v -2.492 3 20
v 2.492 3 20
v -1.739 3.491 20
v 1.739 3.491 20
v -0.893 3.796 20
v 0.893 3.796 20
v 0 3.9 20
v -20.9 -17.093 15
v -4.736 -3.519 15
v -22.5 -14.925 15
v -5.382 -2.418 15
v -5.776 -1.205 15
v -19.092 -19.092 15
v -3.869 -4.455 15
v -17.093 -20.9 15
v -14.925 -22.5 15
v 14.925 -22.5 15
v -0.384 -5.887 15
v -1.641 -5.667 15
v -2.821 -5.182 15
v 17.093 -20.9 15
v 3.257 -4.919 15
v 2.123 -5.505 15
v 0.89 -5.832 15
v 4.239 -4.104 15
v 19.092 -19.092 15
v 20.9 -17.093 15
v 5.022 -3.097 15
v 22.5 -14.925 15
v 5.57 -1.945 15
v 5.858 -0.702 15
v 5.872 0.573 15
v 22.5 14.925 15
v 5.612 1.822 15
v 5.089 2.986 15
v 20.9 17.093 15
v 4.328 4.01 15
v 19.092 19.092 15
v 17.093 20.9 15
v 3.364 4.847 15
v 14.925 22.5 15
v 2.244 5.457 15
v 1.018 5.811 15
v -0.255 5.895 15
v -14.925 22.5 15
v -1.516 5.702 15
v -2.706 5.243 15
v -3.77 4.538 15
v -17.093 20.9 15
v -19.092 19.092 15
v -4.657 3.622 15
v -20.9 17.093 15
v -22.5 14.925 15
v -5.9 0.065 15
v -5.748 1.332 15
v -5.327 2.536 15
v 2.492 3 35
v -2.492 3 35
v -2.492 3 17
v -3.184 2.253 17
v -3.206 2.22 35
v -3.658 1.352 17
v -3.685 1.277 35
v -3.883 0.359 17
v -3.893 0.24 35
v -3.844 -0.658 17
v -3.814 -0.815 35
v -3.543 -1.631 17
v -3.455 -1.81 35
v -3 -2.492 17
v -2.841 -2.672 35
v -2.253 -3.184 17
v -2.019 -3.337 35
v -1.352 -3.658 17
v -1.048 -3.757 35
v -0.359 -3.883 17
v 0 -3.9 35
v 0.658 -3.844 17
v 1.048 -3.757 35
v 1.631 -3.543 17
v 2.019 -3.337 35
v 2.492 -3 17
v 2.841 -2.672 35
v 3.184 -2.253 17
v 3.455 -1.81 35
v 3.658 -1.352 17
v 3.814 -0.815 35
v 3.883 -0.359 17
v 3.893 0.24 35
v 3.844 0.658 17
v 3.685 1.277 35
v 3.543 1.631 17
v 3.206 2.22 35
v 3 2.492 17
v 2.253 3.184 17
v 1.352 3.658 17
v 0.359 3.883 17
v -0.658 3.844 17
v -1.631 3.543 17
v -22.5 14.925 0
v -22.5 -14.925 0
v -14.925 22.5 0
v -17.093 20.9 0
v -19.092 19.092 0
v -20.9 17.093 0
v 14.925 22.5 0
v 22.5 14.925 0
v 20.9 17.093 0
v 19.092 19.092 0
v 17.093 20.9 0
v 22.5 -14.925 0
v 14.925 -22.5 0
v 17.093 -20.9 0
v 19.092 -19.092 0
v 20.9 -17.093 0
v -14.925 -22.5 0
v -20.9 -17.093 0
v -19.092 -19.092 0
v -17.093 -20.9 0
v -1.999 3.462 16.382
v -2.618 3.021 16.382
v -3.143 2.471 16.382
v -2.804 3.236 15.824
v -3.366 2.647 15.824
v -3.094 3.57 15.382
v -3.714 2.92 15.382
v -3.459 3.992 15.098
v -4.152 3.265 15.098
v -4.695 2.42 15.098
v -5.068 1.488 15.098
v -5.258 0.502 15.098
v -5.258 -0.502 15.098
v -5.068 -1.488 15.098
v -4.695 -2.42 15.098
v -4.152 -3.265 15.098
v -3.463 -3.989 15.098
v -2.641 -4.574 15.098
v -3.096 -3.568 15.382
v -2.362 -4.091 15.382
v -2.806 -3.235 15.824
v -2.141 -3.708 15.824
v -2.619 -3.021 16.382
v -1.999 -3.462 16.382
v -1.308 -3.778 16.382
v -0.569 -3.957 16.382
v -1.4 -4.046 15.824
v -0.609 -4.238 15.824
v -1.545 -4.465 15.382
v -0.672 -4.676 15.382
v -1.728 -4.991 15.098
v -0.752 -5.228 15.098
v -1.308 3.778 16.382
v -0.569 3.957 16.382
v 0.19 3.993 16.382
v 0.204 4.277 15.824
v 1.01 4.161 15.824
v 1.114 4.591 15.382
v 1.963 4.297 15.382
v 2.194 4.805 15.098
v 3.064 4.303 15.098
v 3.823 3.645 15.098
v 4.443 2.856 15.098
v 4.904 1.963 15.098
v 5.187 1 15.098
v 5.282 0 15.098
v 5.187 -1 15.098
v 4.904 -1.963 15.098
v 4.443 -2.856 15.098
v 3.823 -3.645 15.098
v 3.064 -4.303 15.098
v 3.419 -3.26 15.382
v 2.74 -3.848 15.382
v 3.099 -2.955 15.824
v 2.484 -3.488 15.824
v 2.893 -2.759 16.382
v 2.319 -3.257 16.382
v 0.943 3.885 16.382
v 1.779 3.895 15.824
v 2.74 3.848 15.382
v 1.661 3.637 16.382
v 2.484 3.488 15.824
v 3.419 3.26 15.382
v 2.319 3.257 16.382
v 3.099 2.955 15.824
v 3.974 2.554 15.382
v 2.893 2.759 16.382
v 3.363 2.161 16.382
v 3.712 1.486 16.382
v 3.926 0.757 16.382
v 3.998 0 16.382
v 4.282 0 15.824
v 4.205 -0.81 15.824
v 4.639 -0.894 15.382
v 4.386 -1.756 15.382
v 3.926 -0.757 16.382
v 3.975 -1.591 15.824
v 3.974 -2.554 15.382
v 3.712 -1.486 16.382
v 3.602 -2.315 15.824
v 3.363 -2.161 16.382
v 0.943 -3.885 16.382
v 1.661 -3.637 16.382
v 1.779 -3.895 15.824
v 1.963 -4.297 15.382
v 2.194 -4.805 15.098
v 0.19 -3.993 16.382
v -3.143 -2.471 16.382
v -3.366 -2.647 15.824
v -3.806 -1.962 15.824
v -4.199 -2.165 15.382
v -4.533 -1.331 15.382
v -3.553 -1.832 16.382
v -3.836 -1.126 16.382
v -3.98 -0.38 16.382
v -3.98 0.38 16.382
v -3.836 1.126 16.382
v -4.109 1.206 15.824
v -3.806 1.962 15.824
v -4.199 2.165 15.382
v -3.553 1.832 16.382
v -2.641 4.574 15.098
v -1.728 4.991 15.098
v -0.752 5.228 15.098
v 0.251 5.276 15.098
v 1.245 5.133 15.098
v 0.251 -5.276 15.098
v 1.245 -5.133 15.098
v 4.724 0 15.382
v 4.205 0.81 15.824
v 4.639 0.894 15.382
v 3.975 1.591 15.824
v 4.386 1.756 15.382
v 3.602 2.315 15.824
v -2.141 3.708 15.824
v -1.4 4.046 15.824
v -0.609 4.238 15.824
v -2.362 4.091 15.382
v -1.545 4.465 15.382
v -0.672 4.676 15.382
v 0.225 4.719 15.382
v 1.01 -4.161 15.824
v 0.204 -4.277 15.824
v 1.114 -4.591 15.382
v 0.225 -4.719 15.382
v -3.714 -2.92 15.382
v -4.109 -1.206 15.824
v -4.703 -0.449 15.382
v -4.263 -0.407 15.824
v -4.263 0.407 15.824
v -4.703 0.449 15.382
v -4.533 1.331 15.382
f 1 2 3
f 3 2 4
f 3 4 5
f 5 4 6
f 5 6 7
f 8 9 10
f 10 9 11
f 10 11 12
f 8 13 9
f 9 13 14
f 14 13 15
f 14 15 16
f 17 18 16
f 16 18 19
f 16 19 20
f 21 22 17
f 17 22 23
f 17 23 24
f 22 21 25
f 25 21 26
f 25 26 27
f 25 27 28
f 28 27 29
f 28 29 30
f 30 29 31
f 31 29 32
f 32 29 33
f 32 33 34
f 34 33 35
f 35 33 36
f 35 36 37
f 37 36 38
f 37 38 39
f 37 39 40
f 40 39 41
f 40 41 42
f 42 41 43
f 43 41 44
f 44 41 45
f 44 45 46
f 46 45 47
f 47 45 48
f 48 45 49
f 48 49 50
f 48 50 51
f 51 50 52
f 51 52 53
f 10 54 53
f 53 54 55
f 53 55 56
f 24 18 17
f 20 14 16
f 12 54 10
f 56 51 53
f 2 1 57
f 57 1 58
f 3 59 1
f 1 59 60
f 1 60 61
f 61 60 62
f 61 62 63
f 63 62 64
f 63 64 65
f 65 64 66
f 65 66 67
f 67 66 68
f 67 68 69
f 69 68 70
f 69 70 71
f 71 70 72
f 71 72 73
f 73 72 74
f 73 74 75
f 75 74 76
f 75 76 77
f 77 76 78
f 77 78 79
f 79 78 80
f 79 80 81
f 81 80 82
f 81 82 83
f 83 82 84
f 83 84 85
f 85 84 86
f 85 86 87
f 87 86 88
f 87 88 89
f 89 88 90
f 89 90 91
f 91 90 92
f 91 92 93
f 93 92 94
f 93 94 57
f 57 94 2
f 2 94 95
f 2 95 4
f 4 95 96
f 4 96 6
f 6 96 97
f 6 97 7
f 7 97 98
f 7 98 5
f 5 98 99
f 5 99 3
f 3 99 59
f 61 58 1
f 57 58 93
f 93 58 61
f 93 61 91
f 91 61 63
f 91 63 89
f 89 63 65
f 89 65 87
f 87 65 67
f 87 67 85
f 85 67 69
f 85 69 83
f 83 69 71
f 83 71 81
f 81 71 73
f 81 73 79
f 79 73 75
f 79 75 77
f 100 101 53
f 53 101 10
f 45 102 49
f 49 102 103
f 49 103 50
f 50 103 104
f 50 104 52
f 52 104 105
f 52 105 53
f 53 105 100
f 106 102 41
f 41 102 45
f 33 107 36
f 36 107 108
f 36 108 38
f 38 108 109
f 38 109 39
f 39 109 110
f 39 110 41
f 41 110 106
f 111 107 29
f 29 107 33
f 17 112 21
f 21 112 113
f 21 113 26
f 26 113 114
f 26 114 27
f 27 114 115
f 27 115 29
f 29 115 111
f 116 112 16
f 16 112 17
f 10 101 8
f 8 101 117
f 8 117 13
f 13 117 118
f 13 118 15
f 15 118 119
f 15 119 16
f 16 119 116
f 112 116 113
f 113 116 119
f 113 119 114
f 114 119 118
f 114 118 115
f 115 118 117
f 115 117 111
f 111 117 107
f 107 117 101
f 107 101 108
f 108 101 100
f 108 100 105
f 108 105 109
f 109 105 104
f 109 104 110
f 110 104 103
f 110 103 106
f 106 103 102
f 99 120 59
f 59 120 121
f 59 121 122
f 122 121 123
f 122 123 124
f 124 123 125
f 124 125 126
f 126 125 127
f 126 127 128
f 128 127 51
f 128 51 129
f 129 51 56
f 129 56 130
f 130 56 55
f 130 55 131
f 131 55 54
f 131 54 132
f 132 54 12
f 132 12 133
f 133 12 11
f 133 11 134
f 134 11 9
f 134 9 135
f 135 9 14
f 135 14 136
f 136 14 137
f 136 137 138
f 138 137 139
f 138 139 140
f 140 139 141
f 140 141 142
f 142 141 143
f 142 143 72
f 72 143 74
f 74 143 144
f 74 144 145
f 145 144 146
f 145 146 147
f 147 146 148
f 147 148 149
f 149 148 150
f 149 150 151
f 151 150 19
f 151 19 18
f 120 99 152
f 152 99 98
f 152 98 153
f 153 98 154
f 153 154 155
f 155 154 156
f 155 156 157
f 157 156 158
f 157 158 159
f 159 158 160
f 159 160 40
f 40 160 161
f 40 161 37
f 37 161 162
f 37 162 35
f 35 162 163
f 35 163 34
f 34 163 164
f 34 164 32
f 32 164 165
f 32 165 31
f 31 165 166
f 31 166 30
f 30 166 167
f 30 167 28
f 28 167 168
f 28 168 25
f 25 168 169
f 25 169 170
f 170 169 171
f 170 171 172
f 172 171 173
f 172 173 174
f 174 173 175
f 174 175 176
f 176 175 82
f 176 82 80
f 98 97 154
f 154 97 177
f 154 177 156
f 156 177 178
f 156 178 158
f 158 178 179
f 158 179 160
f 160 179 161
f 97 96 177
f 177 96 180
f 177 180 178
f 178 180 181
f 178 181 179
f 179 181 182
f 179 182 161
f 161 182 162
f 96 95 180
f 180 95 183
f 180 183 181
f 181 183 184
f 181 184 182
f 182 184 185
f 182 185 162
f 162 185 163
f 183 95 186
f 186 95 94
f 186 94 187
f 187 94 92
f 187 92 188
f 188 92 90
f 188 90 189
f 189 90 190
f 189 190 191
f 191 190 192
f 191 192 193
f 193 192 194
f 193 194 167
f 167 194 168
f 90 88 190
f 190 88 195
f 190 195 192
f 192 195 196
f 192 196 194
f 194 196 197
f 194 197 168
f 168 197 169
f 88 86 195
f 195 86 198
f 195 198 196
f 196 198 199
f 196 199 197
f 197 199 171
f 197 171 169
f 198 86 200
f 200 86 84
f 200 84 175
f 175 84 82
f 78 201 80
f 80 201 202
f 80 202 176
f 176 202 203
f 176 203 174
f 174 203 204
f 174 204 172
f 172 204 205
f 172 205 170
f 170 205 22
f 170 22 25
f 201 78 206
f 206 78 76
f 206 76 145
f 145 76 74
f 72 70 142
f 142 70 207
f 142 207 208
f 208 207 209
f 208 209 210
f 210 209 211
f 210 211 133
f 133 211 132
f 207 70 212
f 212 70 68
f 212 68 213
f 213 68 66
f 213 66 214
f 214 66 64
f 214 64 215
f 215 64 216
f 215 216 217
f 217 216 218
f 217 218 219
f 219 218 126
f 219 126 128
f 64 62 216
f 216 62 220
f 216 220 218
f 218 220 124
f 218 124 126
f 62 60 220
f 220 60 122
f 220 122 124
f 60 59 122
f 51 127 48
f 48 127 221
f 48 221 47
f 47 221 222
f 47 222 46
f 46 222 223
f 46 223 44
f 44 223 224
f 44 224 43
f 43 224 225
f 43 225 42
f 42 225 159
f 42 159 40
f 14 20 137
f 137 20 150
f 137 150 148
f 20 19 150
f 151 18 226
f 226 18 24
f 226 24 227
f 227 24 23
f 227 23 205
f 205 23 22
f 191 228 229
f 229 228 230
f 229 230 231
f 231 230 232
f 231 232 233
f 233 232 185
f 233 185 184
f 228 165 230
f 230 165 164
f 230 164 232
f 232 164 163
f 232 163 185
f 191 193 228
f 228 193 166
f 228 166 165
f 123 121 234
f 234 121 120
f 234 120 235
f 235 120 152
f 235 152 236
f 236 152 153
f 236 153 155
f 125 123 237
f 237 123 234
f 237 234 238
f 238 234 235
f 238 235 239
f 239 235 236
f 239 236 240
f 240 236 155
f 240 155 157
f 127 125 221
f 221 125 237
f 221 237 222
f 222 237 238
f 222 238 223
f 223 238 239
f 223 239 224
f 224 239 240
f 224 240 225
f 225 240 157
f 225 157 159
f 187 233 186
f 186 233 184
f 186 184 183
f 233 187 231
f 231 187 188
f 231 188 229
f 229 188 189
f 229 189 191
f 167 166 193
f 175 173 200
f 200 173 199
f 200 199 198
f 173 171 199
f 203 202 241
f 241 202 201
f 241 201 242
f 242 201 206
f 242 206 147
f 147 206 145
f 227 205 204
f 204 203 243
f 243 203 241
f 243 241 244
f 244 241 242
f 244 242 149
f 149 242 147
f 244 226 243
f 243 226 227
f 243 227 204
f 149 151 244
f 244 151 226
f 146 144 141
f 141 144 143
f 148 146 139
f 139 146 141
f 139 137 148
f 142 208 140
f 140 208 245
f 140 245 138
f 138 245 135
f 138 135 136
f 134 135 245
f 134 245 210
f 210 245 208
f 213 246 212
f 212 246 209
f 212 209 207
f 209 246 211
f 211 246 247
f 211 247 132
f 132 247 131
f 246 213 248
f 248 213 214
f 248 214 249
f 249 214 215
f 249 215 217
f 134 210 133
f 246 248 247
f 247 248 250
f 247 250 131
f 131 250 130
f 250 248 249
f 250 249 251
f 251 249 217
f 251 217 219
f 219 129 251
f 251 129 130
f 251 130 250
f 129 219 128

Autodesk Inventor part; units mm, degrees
ref_plane "YZ Plane" through (0, 0, 0) normal (1, 0, 0) x (0, 1, 0)
ref_plane "XZ Plane" through (0, 0, 0) normal (0, 1, 0) x (-1, 0, 0)
ref_plane "XY Plane" through (0, 0, 0) normal (0, 0, 1) x (1, 0, 0)
sketch "스케치1" plane through (0, 0, 0) normal (0, 0, 1) x (1, 0, 0)
  circle A0 centre (0, 0) radius 27
  line L0 (-22.5, -22.5) -> (22.5, -22.5)
  line L1 (22.5, -22.5) -> (22.5, 22.5)
  line L2 (22.5, 22.5) -> (-22.5, 22.5)
  line L3 (-22.5, 22.5) -> (-22.5, -22.5)
  line L4 (-22.5, -22.5) -> (22.5, 22.5) construction
  line L5 (22.5, -22.5) -> (-22.5, 22.5) construction
  point P0 (-22.5, 14.9248)
  point P1 (-22.5, -14.9248)
  point P2 (-14.9248, -22.5)
  point P3 (14.9248, -22.5)
  point P4 (22.5, -14.9248)
  point P5 (22.5, 14.9248)
  point P6 (14.9248, 22.5)
  point P7 (-14.9248, 22.5)
  dimension "d0" = 54
  dimension "d5" = 45
  dimension "d6" = 45
extrude "돌출1" add sketch "스케치1" along normal blind 15 contours L1 A0 L0 L3 L2
sketch "스케치2" plane through (0, 0, 15) normal (0, 0, 1) x (1, 0, 0)
  point P0 (0, 0)
sketch "스케치3" plane through (0, 0, 15) normal (0, 0, 1) x (1, 0, 0)
  circle A0 centre (0, 0) radius 3.9
  line L0 (-2.492, 3) -> (2.492, 3)
  dimension "d7" = 7.8
  dimension "d8" = 3
extrude "돌출2" add sketch "스케치3" along normal blind 20 contours A0 L0 picked at (1.186, -0.6989)
extrude "돌출3" add sketch "스케치3" along normal blind 5 contours L0 A0 picked at (-0.5796, 3.1636)
fillet "모깎기1" radius 2 1 edges at (-2.492, -3, 15)
properties part number "손잡이 축"
